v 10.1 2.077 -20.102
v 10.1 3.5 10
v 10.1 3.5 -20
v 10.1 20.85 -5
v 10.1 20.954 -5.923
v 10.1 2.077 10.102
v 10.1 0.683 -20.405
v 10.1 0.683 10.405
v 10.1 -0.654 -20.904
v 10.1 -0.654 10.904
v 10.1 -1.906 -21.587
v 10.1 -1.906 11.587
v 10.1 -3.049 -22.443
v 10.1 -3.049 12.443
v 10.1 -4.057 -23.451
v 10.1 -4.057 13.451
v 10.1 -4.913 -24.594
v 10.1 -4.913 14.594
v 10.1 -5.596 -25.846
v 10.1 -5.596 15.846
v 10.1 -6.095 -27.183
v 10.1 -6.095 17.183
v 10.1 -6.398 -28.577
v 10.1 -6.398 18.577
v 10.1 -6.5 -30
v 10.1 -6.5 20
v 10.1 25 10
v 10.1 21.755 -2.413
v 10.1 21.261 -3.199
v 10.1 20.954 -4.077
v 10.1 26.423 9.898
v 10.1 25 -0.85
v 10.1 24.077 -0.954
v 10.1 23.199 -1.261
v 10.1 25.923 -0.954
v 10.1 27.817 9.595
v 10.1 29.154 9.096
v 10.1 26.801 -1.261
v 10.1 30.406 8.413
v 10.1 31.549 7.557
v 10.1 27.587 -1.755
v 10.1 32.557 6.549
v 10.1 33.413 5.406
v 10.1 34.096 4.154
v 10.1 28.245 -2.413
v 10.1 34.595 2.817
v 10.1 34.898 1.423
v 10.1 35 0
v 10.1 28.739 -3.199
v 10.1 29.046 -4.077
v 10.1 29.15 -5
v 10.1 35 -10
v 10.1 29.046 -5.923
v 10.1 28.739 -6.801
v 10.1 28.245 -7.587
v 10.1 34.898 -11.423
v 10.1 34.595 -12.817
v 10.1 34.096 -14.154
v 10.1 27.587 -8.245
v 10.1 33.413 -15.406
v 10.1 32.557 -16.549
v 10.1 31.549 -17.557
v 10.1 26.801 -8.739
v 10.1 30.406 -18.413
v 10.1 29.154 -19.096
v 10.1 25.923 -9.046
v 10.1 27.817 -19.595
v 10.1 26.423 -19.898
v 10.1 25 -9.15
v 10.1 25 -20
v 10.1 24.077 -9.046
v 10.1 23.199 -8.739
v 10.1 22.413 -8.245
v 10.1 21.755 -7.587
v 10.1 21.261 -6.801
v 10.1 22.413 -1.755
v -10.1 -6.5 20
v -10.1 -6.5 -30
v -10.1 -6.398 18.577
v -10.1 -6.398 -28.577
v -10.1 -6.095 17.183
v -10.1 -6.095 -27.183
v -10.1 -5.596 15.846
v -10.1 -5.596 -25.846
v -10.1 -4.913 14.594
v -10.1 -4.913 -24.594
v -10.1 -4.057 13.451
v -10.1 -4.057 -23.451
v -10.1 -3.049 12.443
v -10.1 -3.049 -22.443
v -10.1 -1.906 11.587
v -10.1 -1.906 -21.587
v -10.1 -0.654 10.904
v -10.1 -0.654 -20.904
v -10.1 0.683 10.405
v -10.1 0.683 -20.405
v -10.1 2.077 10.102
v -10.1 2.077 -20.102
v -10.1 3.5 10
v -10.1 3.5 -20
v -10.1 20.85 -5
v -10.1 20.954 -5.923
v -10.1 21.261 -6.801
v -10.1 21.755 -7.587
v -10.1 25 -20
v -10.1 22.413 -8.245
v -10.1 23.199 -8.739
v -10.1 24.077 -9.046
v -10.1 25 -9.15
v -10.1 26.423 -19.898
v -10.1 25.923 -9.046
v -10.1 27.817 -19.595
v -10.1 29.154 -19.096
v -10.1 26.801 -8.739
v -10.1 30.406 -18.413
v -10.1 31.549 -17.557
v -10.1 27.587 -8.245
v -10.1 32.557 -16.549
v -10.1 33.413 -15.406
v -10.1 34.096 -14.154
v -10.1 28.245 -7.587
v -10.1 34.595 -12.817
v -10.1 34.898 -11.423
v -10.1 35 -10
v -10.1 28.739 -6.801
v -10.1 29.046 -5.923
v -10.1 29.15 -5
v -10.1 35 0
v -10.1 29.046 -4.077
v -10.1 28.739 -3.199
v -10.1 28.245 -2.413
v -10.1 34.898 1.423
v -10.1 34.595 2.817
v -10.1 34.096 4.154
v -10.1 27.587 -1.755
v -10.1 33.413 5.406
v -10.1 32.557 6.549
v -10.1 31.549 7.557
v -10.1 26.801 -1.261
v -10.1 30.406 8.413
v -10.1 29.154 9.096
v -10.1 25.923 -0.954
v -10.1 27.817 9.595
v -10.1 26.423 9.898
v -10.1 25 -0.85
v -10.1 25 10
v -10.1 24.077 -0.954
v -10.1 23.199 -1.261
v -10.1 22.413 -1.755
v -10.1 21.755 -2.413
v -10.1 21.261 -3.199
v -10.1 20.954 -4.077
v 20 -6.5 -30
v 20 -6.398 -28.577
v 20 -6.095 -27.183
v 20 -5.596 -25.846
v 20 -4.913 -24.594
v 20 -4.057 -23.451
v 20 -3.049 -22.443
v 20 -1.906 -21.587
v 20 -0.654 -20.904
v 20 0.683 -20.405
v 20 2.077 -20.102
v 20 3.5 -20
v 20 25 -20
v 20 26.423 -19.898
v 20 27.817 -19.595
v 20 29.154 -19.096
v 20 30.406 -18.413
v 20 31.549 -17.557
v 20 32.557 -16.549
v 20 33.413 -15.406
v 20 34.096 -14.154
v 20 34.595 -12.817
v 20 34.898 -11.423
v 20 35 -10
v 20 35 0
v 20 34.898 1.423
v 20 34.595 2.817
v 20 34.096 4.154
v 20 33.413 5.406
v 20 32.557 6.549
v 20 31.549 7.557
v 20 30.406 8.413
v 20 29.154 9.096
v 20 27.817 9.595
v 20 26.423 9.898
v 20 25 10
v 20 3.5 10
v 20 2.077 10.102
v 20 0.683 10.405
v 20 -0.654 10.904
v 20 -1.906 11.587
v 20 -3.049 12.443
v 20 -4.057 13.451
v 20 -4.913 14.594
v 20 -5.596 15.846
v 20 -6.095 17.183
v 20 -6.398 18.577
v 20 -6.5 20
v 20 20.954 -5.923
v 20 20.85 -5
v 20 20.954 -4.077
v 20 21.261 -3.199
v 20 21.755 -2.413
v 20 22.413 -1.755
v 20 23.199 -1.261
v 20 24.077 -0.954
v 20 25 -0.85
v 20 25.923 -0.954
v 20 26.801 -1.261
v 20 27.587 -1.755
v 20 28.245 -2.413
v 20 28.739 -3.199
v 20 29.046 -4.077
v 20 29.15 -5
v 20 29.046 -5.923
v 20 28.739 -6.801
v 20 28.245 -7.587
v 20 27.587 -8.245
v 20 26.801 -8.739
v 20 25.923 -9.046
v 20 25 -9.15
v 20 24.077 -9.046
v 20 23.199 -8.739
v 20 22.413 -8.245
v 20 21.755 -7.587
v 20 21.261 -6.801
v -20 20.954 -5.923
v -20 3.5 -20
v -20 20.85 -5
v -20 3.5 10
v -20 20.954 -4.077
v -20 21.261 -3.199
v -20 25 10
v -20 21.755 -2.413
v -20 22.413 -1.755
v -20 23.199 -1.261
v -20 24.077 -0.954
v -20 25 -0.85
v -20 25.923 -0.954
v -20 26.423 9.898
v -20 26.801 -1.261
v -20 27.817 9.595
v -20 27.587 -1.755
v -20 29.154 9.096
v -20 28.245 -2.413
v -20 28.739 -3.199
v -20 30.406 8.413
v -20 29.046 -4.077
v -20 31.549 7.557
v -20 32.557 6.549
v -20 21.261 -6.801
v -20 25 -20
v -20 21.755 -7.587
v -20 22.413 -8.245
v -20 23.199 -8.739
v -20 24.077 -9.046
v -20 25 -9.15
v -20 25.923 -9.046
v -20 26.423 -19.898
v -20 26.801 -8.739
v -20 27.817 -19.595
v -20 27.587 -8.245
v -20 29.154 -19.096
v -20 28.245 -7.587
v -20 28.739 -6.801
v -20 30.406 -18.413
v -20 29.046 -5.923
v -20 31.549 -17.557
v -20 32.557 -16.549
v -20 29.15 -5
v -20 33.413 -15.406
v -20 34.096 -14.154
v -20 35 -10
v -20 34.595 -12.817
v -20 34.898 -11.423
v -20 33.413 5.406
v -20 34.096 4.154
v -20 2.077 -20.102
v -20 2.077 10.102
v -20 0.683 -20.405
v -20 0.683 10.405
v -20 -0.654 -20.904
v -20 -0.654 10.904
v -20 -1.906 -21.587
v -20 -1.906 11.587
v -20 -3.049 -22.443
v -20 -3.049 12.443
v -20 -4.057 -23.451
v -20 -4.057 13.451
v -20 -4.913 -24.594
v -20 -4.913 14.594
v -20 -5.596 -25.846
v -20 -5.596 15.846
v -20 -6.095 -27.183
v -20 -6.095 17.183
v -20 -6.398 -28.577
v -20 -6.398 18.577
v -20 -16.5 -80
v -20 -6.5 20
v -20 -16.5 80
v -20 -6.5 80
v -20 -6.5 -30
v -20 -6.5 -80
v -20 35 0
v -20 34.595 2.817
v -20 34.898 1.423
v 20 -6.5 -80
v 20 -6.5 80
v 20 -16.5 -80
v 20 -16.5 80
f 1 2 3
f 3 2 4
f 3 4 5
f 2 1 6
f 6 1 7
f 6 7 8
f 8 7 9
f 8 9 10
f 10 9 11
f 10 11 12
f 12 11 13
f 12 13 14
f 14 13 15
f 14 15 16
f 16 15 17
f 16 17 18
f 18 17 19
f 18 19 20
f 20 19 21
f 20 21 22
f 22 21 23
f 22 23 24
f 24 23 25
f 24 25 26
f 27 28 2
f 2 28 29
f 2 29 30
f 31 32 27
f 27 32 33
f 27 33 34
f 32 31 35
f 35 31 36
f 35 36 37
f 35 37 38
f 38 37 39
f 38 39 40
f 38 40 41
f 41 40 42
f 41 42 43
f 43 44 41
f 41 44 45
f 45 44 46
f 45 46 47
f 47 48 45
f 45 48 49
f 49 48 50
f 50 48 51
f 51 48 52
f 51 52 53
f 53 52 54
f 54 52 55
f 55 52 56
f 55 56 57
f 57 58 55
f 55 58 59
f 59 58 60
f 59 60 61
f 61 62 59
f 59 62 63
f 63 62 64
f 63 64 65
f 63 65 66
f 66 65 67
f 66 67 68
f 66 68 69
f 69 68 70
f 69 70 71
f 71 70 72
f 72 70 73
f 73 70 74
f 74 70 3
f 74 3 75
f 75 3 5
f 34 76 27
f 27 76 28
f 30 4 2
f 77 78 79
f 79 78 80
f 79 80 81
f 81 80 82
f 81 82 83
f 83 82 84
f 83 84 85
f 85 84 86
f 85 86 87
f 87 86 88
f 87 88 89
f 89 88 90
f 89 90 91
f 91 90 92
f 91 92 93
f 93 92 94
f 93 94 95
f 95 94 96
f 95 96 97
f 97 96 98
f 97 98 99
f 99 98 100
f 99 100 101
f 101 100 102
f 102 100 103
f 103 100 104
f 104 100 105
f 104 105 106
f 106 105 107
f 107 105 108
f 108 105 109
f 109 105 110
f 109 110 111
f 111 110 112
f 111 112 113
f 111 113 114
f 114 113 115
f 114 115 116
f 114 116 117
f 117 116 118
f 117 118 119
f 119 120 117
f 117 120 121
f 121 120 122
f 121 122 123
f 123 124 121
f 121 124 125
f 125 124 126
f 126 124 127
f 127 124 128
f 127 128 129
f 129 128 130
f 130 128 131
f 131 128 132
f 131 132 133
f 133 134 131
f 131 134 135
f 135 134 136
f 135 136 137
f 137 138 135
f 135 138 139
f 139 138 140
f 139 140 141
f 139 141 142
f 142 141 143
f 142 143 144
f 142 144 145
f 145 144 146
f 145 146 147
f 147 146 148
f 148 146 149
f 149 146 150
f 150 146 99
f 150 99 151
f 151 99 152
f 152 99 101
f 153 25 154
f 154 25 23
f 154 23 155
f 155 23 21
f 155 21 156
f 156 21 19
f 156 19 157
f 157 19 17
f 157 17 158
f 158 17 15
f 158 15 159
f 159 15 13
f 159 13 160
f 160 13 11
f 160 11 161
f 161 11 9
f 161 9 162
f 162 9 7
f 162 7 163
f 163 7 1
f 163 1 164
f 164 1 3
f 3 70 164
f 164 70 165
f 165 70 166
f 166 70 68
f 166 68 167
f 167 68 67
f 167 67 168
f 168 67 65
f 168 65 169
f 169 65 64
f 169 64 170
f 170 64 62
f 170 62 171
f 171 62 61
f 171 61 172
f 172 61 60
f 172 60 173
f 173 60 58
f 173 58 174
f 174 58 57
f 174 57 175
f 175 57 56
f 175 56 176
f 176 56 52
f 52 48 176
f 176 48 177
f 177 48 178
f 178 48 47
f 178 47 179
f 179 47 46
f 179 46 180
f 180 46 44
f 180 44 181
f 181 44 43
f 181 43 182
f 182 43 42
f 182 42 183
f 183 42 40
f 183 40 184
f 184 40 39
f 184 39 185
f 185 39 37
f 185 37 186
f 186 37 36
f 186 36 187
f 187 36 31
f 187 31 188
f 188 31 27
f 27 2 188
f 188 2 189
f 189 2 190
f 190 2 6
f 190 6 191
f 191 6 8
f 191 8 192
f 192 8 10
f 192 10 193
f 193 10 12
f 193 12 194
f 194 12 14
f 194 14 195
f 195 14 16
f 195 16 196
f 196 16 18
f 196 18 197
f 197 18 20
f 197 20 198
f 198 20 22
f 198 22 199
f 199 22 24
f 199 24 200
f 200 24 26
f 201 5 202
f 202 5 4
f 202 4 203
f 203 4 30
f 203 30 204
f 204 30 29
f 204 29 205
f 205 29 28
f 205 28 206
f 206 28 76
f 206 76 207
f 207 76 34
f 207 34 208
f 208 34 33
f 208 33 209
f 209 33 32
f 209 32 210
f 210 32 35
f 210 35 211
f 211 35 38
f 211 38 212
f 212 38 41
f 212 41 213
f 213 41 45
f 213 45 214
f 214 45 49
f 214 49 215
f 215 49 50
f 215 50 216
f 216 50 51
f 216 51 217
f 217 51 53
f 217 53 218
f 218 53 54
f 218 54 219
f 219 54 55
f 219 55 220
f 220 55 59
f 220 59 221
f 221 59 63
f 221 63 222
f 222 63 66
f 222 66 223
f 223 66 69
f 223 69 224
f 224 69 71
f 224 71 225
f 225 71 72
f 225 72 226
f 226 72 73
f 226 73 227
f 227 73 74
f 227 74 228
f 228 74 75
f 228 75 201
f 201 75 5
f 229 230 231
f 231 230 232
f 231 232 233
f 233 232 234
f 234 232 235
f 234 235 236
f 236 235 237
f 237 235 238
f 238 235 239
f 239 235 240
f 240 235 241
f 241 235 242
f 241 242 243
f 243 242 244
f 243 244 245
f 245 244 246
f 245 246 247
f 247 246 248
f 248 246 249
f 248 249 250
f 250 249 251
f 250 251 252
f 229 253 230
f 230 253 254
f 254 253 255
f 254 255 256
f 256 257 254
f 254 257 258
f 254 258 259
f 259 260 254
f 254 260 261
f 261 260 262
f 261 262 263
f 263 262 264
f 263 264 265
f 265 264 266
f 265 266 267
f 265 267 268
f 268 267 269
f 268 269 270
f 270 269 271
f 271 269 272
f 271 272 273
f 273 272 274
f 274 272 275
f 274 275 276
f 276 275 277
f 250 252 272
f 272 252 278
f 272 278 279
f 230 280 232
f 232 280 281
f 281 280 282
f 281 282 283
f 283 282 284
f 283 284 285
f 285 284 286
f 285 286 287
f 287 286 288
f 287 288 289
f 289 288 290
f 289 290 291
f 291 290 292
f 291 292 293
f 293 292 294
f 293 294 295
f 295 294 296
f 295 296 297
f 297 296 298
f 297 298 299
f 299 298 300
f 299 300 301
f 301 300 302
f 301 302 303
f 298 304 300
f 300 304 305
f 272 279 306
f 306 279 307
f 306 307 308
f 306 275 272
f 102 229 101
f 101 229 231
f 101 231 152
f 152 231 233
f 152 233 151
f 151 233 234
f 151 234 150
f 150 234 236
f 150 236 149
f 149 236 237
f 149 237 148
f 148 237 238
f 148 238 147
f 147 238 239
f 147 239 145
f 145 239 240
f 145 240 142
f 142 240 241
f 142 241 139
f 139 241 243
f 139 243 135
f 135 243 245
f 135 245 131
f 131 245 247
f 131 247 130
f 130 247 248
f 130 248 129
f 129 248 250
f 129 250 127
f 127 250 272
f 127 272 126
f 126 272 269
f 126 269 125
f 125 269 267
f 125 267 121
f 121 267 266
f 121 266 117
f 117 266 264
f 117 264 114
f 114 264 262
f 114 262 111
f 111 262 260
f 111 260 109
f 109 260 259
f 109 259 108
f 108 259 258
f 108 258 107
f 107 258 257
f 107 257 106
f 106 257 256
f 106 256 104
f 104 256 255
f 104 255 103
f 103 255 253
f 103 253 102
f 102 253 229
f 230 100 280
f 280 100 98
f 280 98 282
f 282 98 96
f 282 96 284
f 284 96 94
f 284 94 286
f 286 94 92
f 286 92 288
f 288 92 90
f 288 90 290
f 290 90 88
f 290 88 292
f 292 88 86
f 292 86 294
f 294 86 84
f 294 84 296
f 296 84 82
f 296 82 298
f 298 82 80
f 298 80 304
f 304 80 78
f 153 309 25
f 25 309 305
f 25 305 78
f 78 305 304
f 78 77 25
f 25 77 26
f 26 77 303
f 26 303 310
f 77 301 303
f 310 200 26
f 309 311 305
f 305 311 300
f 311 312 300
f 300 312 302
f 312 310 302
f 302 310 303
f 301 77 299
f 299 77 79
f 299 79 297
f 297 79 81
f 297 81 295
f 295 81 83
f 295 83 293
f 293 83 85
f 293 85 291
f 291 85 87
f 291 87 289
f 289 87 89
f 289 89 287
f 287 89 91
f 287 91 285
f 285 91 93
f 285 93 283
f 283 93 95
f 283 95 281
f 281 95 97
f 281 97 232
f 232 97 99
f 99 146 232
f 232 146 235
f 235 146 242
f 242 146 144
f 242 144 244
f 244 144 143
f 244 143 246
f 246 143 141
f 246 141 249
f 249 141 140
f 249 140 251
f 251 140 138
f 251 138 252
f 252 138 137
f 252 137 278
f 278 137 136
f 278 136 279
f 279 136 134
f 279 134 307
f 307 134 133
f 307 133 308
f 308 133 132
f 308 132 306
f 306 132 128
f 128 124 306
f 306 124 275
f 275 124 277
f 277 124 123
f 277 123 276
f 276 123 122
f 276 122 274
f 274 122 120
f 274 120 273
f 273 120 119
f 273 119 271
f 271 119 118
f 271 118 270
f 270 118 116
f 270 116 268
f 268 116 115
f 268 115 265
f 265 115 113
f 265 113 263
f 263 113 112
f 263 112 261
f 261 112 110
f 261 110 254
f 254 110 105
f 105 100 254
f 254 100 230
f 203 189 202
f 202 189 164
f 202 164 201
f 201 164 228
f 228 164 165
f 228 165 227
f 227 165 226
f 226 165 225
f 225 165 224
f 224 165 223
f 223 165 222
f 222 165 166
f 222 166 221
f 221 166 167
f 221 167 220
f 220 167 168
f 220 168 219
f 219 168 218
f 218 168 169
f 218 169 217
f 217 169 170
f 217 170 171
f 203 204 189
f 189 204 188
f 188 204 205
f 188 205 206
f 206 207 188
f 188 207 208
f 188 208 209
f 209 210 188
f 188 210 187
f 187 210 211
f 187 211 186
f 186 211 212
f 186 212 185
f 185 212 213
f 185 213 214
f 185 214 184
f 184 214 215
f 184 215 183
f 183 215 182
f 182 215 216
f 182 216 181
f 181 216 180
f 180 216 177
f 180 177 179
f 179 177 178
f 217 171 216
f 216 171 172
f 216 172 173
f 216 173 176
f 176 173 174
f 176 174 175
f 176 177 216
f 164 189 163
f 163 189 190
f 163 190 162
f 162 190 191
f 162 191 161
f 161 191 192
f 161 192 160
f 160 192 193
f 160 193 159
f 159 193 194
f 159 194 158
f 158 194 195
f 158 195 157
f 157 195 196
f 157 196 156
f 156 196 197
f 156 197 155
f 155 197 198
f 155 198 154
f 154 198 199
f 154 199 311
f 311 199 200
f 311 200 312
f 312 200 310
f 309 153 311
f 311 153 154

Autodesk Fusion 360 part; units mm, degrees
sketch "Skizze8" plane through (0, 0, 0) normal (1, 0, 0) x (0, 1, 0)
  line L0 (-6.5, 80) -> (-16.5, 80)
  line L1 (-16.5, 80) -> (-16.5, -80)
  line L2 (-16.5, -80) -> (-6.5, -80)
  line L3 (-6.5, -80) -> (-6.5, -30)
  line L4 (3.5, -20) -> (25, -20)
  line L5 (35, -10) -> (35, 0)
  line L6 (25, 10) -> (3.5, 10)
  line L7 (105.6778, -5) -> (-37.6639, -5) construction
  line L8 (25, 49.113) -> (25, -113.6091) construction
  line L9 (-6.5, 20) -> (-6.5, 80)
  arc A0 (-6.5, 20) -> (3.5, 10) centre (3.5, 20) ccw
  arc A1 (3.5, -20) -> (-6.5, -30) centre (3.5, -30) ccw
  arc A2 (35, 0) -> (25, 10) centre (25, 0) ccw
  arc A3 (25, -20) -> (35, -10) centre (25, -10) ccw
  circle A4 centre (25, -5) radius 4.15
  point P0 (-6.5, 10)
  dimension "d127" = 80
  dimension "d128" = 80
  dimension "d129" = 5
  dimension "d130" = 31.5
  dimension "d131" = 25
  dimension "d132" = 10
  dimension "d133" = 10
  dimension "d134" = 15
  dimension "d135" = 15
  dimension "d136" = 10
  dimension "d137" = 10
  dimension "d138" = 10
  dimension "d139" = 10
  dimension "d140" = 10
  dimension "d141" = 10
  dimension "d142" = 8.3
extrude "Extrusion8" add sketch "Skizze8" along normal mid plane 40
sketch "Skizze9" plane through (0, 0, 0) normal (0, 0, 1) x (1, 0, 0)
  line L0 (10.1, 40) -> (-10.1, 40)
  line L1 (-10.1, 40) -> (-10.1, -6.5)
  line L2 (-10.1, -6.5) -> (10.1, -6.5)
  line L3 (10.1, -6.5) -> (10.1, 40)
  dimension "d145" = 6.5
  dimension "d146" = 40
  dimension "d147" = 10.1
  dimension "d148" = 10.1
extrude "Extrusion9" cut sketch "Skizze9" along normal mid plane 200
